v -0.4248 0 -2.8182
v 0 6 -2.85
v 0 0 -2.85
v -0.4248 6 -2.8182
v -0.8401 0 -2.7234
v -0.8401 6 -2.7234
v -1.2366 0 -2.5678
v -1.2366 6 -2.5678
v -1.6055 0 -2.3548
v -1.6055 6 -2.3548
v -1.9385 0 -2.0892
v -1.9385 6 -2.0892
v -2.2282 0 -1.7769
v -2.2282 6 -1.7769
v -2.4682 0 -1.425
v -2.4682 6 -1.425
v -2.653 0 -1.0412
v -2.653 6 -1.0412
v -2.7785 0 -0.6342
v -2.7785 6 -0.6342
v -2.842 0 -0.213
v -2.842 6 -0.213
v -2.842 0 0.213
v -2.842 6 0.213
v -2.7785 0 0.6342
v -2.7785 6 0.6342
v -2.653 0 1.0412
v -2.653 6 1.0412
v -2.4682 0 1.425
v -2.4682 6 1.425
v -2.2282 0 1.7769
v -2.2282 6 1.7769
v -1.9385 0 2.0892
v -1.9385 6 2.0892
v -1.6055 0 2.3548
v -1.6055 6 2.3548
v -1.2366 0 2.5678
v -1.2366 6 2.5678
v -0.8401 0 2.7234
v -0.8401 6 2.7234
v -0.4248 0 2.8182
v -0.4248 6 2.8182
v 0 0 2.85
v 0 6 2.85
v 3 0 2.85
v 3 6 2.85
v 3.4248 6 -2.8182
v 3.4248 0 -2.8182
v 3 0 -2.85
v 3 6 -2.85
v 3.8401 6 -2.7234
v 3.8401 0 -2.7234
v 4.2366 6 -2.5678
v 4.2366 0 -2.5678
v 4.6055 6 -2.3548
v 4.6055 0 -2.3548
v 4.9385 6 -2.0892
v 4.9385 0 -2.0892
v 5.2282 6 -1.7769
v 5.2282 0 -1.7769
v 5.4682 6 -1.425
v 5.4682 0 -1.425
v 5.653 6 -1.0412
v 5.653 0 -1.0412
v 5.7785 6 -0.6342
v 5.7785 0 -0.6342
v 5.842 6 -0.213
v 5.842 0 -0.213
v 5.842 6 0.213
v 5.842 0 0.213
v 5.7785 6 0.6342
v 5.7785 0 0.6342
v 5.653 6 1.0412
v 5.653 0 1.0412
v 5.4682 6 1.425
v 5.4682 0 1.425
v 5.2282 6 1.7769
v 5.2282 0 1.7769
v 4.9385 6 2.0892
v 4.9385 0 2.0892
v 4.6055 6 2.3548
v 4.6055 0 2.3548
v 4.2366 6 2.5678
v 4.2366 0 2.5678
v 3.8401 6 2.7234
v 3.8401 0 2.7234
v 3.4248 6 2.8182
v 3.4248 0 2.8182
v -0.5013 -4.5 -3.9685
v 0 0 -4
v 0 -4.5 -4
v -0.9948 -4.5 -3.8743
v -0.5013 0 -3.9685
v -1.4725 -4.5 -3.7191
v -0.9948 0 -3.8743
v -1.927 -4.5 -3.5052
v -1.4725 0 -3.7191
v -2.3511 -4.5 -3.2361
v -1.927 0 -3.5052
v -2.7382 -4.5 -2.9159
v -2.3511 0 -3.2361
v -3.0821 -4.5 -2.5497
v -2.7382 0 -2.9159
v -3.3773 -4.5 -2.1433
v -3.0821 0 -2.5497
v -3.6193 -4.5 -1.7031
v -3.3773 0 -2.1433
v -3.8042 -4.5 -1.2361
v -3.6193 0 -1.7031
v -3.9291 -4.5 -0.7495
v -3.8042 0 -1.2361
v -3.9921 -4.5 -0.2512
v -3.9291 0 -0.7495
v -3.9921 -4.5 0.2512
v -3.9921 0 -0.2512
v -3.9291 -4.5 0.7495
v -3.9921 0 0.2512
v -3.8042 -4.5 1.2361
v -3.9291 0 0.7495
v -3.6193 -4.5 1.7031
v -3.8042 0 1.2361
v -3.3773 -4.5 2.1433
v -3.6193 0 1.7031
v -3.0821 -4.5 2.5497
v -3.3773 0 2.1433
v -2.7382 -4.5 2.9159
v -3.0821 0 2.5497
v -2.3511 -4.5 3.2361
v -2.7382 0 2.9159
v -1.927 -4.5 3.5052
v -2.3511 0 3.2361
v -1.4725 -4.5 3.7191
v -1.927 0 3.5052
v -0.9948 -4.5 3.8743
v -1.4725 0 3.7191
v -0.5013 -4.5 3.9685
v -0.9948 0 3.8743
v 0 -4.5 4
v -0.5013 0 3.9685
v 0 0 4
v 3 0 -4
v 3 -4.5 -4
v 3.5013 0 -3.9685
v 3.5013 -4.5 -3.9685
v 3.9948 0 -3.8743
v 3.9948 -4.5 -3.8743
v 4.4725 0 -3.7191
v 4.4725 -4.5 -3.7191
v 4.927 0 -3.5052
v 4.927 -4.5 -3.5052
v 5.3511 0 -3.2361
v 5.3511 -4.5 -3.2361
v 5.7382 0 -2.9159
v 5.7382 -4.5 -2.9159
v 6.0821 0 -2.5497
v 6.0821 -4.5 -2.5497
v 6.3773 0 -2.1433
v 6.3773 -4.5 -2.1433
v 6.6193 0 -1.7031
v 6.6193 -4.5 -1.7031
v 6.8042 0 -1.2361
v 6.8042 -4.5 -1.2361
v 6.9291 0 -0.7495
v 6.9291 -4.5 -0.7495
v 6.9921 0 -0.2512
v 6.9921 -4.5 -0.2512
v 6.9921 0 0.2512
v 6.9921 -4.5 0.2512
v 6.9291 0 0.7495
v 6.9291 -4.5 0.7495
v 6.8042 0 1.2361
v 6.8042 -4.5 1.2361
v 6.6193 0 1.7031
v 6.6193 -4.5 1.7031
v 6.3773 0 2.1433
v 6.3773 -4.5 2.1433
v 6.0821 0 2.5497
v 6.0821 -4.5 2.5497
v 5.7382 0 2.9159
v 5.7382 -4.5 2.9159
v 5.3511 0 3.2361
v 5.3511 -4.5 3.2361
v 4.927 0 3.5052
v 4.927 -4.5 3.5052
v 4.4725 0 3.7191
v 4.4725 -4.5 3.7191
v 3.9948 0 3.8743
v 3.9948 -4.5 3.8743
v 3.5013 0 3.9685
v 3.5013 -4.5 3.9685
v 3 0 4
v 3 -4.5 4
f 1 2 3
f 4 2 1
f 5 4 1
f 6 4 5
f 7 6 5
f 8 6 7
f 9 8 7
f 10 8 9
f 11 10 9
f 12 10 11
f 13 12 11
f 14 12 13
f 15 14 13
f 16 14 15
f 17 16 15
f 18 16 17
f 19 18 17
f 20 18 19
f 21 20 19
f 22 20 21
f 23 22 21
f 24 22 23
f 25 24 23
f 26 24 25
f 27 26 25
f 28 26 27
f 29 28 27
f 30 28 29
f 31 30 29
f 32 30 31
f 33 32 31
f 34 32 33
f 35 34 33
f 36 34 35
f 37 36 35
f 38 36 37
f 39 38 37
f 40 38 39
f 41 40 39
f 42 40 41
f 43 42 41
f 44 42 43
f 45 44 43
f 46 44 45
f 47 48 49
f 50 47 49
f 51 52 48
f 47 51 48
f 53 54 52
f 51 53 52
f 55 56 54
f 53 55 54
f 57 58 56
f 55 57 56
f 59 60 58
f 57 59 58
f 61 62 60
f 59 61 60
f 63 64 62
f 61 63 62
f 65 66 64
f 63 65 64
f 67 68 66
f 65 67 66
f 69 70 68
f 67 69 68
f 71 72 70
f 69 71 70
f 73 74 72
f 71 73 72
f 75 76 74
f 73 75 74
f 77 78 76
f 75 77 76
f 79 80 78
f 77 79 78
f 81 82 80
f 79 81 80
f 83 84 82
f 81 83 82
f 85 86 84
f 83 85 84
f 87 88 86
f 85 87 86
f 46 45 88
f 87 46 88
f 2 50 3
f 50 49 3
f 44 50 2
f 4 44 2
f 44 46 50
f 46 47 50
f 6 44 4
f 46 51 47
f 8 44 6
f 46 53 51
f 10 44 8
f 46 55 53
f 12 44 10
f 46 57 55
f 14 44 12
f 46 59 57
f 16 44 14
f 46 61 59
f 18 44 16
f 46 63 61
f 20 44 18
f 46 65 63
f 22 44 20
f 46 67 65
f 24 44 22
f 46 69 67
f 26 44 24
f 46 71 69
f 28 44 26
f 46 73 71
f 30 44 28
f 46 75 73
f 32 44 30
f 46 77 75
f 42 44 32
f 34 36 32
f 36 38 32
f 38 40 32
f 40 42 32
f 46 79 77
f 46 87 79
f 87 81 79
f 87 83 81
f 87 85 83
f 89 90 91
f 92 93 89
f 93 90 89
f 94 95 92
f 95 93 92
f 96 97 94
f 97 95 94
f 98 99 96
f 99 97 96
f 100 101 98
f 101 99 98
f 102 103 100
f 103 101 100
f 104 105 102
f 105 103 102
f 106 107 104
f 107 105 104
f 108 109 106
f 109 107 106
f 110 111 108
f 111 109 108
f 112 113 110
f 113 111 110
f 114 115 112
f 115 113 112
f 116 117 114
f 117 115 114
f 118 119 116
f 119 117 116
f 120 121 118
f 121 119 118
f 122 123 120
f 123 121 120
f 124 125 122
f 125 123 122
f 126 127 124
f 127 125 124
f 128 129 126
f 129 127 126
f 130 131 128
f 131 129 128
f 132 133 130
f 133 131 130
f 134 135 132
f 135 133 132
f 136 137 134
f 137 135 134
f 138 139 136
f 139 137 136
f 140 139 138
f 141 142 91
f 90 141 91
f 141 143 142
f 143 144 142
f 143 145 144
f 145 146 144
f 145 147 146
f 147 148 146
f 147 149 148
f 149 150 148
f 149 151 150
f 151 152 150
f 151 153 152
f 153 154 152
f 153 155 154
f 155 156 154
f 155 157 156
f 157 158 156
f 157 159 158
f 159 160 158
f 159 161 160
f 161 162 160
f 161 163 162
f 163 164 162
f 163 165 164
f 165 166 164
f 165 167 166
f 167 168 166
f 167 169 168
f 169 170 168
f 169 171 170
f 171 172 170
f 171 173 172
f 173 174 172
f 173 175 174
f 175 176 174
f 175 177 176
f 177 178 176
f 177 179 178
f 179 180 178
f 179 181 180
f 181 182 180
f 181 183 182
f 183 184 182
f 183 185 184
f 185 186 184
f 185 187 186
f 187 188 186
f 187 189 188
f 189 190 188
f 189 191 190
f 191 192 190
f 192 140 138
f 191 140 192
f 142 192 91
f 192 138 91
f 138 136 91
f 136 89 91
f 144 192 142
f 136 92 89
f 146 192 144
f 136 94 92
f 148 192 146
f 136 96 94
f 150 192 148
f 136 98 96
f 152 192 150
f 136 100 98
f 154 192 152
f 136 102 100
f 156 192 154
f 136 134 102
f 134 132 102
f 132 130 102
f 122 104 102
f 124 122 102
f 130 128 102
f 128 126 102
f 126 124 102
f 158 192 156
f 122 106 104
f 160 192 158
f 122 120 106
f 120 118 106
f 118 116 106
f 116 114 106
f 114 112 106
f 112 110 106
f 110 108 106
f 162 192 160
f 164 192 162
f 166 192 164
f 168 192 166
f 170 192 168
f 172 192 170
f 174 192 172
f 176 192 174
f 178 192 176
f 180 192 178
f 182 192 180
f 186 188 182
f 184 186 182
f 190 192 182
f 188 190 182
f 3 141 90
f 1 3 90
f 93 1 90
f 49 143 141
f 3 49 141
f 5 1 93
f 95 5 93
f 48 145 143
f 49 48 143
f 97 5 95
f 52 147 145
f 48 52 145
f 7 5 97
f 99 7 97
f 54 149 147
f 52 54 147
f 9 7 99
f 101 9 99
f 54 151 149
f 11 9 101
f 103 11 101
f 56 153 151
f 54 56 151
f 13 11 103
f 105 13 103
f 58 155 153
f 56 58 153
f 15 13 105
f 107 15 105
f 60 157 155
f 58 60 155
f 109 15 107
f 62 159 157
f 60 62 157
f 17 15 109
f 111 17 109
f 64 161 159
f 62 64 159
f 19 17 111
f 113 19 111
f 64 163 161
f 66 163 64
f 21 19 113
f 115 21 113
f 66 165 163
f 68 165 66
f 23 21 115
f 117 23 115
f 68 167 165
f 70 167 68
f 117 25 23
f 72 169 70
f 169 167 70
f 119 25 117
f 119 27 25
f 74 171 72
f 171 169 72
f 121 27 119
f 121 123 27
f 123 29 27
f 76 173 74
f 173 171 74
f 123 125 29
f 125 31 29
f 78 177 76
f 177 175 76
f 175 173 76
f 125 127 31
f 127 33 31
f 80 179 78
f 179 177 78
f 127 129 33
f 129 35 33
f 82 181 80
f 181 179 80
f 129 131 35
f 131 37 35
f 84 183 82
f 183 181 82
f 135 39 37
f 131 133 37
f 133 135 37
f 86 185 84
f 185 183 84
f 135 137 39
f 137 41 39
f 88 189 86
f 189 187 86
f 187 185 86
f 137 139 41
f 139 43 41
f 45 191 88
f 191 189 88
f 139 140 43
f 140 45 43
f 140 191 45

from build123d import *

# Parameters (mm, degrees)
EXTRUDE_1_DEPTH = 6
EXTRUDE_2_DEPTH = 4.5


with BuildPart() as part:
    # 草图1 → 凸台-拉伸1 (new body)
    with BuildSketch(Plane(origin=(0, 0, 0), x_dir=(1, 0, 0), z_dir=(0, 1, 0))):
        with BuildLine():
            Line((0, 2.85), (3, 2.85))
            ThreePointArc((3, 2.85), (5.85, 0), (3, -2.85))
            Line((3, -2.85), (0, -2.85))
            ThreePointArc((0, -2.85), (-2.85, 0), (0, 2.85))
        make_face()
    extrude(amount=EXTRUDE_1_DEPTH)

    # 草图2 → 凸台-拉伸2 (add)
    with BuildSketch(Plane.XZ):
        with BuildLine():
            Line((0, 4), (3, 4))
            ThreePointArc((3, 4), (7, 0), (3, -4))
            Line((3, -4), (0, -4))
            ThreePointArc((0, -4), (-4, 0), (0, 4))
        make_face()
    extrude(amount=EXTRUDE_2_DEPTH)


solid = part.part
